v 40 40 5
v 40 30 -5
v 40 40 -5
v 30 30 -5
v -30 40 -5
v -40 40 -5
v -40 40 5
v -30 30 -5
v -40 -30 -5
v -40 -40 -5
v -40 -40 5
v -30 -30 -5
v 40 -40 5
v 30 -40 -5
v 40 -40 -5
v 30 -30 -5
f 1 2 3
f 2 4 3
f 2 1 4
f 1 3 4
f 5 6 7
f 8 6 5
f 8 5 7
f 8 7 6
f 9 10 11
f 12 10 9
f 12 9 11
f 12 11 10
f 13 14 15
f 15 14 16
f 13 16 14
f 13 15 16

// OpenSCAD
// file: def.scad
block_size_3 = 19;
block_size_4 = 16;
block_size_5 = 14;
block_size_6 = 12.5;
block_size_7 = 11;
block_size_8 = 10;

inf = 1000;

round_radius = 1;
sticker_margin = 2.5;
sticker_round_radius = 0.75;

module _block(size) {
    minkowski() {
        cube([size - round_radius * 2, size - round_radius * 2, size - round_radius * 2], center = true);
        sphere(r = round_radius, $fn = 24);
    }
}

module _selector_0(size) {
    cube([size - 0.2, size - 0.2, size - 0.2], center = true);
}

module _sticker(size) {
    minkowski() {
        cube([size - sticker_margin * 2, size - sticker_margin * 2, 0.1], center = true);
        cylinder(r = sticker_round_radius, h = 0.1, $fn = 24);
    }
}

module _selector_corner_cw(size) {
    difference() {
        cube([size, size, size], center = true);
        rotate([0, -45, 0])
            translate([-inf, -inf, 0])
                cube([inf * 2, inf * 2, inf]);
        rotate([90, 0, 45])
            translate([-inf, -inf, 0])
                cube([inf * 2, inf * 2, inf]);
    }
}

module _selector_corner_ccw(size) {
    difference() {
        cube([size, size, size], center = true);
        rotate([45, 0, 0])
            translate([-inf, -inf, 0])
                cube([inf * 2, inf * 2, inf]);
        rotate([0, -90, -45])
            translate([-inf, -inf, 0])
                cube([inf * 2, inf * 2, inf]);
    }
}

module _selector_edge_cw(size) {
    difference() {
        cube([size, size, size], center = true);
        rotate([90, 0, 45])
            translate([-inf, -inf, 0])
                cube([inf * 2, inf * 2, inf]);
    }
}

module _selector_edge_ccw(size) {
    difference() {
        cube([size, size, size], center = true);
        rotate([0, -90, -45])
            translate([-inf, -inf, 0])
                cube([inf * 2, inf * 2, inf]);
    }
}
// main file
include <def.scad>

for (deg = [0 : 90 : 270])
    rotate([0, 0, deg])
        translate([block_size_8 * 3.5, block_size_8 * 3.5, 0])
            _selector_corner_ccw(block_size_8);
